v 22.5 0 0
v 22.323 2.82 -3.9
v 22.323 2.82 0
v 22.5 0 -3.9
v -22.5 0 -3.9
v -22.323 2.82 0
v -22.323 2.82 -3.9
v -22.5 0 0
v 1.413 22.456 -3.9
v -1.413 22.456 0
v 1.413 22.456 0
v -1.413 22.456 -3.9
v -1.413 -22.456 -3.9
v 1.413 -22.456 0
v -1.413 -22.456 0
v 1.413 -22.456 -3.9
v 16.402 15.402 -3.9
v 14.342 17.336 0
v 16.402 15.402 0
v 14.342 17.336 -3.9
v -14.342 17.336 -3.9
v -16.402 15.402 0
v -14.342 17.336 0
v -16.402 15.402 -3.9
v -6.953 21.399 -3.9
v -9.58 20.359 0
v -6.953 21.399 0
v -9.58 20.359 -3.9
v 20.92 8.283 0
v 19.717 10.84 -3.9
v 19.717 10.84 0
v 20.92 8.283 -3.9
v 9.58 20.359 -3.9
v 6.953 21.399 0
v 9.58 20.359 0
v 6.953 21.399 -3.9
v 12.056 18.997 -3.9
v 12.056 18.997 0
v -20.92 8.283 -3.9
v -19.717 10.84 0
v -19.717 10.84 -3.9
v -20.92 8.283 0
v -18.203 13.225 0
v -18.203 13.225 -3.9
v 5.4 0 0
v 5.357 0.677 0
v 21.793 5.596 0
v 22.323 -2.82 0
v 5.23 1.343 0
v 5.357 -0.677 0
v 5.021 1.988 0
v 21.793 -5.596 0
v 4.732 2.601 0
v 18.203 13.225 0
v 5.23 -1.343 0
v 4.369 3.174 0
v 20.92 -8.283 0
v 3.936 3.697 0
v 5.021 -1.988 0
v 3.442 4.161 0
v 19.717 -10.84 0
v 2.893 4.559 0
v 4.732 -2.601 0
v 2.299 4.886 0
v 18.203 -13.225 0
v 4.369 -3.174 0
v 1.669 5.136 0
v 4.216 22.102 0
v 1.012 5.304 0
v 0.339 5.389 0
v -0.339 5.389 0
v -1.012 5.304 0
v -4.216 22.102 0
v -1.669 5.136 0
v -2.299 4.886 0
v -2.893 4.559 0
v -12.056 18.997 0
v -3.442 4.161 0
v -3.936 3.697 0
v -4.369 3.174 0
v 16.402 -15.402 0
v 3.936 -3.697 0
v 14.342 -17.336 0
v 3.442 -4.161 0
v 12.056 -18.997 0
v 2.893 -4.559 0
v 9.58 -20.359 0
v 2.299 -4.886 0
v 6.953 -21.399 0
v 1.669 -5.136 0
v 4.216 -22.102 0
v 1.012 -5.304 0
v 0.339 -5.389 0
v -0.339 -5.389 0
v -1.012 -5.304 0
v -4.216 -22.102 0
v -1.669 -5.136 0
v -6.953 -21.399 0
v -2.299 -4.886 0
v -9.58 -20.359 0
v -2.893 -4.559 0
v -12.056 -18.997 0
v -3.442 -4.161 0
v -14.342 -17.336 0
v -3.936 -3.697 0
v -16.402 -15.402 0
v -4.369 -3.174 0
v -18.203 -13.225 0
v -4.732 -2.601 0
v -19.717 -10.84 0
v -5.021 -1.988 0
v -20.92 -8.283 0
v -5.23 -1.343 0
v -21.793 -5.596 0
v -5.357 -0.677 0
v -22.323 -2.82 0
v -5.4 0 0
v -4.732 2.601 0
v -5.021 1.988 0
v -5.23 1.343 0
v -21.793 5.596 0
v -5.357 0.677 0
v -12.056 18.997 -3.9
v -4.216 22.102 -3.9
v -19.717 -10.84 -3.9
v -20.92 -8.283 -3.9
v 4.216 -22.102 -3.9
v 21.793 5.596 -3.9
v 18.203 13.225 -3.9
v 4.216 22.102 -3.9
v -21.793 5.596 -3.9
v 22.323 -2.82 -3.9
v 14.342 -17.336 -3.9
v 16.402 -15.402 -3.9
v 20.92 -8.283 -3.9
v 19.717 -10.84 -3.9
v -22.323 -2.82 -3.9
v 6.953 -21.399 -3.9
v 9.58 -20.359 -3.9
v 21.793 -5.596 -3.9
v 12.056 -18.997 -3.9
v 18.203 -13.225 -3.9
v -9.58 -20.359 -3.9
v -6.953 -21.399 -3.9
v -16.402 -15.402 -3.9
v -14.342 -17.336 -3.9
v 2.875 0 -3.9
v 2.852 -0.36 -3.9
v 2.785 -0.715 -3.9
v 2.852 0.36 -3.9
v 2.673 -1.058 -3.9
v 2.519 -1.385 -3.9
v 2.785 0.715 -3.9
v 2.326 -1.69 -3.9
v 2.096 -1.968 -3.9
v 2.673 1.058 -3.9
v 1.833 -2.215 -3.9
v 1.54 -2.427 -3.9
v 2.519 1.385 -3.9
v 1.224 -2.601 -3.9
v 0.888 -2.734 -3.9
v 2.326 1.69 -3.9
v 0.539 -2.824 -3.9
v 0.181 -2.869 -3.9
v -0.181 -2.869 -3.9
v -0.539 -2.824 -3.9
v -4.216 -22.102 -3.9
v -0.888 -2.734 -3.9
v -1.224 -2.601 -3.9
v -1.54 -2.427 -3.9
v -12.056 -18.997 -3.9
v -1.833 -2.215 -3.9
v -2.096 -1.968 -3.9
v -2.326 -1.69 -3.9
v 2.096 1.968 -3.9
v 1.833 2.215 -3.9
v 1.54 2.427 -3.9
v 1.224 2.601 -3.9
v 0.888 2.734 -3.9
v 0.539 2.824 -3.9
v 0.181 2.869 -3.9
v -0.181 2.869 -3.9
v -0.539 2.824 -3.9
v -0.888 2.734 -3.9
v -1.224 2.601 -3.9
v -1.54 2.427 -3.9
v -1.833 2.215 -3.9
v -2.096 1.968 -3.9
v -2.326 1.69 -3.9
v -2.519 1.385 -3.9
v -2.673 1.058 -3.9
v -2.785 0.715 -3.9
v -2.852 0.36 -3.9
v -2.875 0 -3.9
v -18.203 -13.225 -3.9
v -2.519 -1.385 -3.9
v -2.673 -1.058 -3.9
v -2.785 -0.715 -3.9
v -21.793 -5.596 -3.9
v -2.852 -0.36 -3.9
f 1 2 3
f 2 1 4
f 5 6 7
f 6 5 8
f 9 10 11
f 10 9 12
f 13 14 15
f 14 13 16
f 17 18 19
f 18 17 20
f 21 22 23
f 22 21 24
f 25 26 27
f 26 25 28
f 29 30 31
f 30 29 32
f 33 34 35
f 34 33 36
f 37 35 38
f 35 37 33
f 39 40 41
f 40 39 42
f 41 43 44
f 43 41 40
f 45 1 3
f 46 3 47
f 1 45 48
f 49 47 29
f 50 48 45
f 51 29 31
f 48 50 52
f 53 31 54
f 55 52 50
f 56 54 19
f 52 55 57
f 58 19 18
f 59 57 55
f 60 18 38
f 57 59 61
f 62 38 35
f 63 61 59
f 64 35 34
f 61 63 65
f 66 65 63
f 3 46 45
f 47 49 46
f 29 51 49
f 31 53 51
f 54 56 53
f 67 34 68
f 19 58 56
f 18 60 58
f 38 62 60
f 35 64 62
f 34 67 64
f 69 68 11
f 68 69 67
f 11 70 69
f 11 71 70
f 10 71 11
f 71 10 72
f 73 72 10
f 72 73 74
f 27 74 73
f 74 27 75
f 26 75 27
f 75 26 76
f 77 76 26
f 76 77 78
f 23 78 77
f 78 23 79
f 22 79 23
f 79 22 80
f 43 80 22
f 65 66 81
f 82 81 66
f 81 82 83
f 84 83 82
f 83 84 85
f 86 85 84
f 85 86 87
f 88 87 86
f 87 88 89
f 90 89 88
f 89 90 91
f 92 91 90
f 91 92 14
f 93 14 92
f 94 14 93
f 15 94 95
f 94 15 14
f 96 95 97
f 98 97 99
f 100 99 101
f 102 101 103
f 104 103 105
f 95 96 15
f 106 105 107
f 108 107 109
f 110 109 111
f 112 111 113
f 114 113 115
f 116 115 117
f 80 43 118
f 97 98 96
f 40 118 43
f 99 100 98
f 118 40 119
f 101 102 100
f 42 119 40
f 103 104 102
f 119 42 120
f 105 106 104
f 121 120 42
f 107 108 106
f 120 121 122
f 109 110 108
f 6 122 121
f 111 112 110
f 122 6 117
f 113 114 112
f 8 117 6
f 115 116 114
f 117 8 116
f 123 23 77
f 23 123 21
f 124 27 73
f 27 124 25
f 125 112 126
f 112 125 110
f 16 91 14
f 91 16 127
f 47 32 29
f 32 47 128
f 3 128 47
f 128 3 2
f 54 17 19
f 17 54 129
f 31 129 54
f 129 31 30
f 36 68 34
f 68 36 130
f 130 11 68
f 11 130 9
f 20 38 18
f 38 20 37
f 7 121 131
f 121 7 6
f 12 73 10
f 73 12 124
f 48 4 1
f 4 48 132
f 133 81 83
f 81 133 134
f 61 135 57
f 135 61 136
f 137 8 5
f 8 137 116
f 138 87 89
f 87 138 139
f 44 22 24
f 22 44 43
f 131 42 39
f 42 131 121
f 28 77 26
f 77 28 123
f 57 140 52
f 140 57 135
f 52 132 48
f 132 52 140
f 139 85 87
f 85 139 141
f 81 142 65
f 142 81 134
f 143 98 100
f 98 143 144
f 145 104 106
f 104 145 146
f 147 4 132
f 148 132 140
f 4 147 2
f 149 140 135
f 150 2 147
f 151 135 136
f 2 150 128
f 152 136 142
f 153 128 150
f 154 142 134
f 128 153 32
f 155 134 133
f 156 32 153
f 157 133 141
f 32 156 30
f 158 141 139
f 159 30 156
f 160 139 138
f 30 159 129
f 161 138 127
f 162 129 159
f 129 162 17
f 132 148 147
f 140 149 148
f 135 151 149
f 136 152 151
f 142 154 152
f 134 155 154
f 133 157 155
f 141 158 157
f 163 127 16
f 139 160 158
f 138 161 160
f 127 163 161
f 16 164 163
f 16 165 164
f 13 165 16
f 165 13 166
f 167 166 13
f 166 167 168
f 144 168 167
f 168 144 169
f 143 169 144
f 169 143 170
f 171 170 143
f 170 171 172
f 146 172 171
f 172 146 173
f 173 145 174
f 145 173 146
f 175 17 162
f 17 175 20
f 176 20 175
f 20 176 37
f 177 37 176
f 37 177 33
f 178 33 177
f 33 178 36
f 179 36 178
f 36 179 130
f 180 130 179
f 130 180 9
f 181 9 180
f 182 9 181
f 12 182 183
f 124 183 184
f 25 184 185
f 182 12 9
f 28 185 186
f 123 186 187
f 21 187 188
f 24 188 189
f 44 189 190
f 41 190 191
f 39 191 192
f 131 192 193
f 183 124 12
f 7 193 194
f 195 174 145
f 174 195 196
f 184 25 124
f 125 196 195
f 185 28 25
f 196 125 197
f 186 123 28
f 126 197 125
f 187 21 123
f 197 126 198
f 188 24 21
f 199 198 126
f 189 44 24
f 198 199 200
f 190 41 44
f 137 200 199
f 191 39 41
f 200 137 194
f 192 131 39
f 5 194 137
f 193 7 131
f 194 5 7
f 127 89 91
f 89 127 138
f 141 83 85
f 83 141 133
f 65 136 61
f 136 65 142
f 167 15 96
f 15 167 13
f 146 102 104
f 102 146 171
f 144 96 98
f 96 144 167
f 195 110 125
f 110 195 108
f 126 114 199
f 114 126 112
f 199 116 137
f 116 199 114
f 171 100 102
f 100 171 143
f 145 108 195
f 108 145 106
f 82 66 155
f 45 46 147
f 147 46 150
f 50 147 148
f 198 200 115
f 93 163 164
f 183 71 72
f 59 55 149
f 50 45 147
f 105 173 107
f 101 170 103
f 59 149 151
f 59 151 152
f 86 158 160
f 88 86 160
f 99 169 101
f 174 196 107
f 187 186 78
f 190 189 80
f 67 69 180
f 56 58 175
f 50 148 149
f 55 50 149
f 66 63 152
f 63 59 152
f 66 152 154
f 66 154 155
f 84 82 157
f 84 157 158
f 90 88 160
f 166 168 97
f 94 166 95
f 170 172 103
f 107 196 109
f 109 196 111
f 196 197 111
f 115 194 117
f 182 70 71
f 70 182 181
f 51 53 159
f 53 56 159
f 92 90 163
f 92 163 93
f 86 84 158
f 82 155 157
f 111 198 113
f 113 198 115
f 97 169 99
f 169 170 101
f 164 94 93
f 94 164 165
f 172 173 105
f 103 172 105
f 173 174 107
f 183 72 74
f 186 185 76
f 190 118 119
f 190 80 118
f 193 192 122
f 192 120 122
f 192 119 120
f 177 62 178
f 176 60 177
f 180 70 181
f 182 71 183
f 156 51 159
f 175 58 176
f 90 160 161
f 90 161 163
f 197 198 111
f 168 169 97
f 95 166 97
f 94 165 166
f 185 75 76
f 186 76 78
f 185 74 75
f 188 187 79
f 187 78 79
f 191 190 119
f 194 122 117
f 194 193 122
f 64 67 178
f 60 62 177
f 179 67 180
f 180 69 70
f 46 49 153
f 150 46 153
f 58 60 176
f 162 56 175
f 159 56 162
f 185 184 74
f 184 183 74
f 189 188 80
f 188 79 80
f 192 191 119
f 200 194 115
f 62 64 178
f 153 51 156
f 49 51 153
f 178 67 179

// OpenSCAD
$fn = 50;


difference() {
	union() {
		translate(v = [0, 0, -3.9000000000]) {
			cylinder(h = 3.9000000000, r = 22.5000000000);
		}
		translate(v = [0, 0, -3.9000000000]) {
			cylinder(h = 3.9000000000, r = 2.8750000000);
		}
	}
	union() {
		translate(v = [0, 0, 0]) {
			rotate(a = [0, 0, 0]) {
				difference() {
					union() {
						#translate(v = [0, 0, -3.9000000000]) {
							cylinder(h = 3.9000000000, r = 2.6000000000);
						}
						#translate(v = [0, 0, -3.9000000000]) {
							cylinder(h = 3.9000000000, r1 = 2.8750000000, r2 = 5.4000000000);
						}
						#translate(v = [0, 0, -3.9000000000]) {
							cylinder(h = 3.9000000000, r = 2.8750000000);
						}
						#translate(v = [0, 0, -3.9000000000]) {
							cylinder(h = 3.9000000000, r = 2.6000000000);
						}
					}
					union();
				}
			}
		}
	}
}
